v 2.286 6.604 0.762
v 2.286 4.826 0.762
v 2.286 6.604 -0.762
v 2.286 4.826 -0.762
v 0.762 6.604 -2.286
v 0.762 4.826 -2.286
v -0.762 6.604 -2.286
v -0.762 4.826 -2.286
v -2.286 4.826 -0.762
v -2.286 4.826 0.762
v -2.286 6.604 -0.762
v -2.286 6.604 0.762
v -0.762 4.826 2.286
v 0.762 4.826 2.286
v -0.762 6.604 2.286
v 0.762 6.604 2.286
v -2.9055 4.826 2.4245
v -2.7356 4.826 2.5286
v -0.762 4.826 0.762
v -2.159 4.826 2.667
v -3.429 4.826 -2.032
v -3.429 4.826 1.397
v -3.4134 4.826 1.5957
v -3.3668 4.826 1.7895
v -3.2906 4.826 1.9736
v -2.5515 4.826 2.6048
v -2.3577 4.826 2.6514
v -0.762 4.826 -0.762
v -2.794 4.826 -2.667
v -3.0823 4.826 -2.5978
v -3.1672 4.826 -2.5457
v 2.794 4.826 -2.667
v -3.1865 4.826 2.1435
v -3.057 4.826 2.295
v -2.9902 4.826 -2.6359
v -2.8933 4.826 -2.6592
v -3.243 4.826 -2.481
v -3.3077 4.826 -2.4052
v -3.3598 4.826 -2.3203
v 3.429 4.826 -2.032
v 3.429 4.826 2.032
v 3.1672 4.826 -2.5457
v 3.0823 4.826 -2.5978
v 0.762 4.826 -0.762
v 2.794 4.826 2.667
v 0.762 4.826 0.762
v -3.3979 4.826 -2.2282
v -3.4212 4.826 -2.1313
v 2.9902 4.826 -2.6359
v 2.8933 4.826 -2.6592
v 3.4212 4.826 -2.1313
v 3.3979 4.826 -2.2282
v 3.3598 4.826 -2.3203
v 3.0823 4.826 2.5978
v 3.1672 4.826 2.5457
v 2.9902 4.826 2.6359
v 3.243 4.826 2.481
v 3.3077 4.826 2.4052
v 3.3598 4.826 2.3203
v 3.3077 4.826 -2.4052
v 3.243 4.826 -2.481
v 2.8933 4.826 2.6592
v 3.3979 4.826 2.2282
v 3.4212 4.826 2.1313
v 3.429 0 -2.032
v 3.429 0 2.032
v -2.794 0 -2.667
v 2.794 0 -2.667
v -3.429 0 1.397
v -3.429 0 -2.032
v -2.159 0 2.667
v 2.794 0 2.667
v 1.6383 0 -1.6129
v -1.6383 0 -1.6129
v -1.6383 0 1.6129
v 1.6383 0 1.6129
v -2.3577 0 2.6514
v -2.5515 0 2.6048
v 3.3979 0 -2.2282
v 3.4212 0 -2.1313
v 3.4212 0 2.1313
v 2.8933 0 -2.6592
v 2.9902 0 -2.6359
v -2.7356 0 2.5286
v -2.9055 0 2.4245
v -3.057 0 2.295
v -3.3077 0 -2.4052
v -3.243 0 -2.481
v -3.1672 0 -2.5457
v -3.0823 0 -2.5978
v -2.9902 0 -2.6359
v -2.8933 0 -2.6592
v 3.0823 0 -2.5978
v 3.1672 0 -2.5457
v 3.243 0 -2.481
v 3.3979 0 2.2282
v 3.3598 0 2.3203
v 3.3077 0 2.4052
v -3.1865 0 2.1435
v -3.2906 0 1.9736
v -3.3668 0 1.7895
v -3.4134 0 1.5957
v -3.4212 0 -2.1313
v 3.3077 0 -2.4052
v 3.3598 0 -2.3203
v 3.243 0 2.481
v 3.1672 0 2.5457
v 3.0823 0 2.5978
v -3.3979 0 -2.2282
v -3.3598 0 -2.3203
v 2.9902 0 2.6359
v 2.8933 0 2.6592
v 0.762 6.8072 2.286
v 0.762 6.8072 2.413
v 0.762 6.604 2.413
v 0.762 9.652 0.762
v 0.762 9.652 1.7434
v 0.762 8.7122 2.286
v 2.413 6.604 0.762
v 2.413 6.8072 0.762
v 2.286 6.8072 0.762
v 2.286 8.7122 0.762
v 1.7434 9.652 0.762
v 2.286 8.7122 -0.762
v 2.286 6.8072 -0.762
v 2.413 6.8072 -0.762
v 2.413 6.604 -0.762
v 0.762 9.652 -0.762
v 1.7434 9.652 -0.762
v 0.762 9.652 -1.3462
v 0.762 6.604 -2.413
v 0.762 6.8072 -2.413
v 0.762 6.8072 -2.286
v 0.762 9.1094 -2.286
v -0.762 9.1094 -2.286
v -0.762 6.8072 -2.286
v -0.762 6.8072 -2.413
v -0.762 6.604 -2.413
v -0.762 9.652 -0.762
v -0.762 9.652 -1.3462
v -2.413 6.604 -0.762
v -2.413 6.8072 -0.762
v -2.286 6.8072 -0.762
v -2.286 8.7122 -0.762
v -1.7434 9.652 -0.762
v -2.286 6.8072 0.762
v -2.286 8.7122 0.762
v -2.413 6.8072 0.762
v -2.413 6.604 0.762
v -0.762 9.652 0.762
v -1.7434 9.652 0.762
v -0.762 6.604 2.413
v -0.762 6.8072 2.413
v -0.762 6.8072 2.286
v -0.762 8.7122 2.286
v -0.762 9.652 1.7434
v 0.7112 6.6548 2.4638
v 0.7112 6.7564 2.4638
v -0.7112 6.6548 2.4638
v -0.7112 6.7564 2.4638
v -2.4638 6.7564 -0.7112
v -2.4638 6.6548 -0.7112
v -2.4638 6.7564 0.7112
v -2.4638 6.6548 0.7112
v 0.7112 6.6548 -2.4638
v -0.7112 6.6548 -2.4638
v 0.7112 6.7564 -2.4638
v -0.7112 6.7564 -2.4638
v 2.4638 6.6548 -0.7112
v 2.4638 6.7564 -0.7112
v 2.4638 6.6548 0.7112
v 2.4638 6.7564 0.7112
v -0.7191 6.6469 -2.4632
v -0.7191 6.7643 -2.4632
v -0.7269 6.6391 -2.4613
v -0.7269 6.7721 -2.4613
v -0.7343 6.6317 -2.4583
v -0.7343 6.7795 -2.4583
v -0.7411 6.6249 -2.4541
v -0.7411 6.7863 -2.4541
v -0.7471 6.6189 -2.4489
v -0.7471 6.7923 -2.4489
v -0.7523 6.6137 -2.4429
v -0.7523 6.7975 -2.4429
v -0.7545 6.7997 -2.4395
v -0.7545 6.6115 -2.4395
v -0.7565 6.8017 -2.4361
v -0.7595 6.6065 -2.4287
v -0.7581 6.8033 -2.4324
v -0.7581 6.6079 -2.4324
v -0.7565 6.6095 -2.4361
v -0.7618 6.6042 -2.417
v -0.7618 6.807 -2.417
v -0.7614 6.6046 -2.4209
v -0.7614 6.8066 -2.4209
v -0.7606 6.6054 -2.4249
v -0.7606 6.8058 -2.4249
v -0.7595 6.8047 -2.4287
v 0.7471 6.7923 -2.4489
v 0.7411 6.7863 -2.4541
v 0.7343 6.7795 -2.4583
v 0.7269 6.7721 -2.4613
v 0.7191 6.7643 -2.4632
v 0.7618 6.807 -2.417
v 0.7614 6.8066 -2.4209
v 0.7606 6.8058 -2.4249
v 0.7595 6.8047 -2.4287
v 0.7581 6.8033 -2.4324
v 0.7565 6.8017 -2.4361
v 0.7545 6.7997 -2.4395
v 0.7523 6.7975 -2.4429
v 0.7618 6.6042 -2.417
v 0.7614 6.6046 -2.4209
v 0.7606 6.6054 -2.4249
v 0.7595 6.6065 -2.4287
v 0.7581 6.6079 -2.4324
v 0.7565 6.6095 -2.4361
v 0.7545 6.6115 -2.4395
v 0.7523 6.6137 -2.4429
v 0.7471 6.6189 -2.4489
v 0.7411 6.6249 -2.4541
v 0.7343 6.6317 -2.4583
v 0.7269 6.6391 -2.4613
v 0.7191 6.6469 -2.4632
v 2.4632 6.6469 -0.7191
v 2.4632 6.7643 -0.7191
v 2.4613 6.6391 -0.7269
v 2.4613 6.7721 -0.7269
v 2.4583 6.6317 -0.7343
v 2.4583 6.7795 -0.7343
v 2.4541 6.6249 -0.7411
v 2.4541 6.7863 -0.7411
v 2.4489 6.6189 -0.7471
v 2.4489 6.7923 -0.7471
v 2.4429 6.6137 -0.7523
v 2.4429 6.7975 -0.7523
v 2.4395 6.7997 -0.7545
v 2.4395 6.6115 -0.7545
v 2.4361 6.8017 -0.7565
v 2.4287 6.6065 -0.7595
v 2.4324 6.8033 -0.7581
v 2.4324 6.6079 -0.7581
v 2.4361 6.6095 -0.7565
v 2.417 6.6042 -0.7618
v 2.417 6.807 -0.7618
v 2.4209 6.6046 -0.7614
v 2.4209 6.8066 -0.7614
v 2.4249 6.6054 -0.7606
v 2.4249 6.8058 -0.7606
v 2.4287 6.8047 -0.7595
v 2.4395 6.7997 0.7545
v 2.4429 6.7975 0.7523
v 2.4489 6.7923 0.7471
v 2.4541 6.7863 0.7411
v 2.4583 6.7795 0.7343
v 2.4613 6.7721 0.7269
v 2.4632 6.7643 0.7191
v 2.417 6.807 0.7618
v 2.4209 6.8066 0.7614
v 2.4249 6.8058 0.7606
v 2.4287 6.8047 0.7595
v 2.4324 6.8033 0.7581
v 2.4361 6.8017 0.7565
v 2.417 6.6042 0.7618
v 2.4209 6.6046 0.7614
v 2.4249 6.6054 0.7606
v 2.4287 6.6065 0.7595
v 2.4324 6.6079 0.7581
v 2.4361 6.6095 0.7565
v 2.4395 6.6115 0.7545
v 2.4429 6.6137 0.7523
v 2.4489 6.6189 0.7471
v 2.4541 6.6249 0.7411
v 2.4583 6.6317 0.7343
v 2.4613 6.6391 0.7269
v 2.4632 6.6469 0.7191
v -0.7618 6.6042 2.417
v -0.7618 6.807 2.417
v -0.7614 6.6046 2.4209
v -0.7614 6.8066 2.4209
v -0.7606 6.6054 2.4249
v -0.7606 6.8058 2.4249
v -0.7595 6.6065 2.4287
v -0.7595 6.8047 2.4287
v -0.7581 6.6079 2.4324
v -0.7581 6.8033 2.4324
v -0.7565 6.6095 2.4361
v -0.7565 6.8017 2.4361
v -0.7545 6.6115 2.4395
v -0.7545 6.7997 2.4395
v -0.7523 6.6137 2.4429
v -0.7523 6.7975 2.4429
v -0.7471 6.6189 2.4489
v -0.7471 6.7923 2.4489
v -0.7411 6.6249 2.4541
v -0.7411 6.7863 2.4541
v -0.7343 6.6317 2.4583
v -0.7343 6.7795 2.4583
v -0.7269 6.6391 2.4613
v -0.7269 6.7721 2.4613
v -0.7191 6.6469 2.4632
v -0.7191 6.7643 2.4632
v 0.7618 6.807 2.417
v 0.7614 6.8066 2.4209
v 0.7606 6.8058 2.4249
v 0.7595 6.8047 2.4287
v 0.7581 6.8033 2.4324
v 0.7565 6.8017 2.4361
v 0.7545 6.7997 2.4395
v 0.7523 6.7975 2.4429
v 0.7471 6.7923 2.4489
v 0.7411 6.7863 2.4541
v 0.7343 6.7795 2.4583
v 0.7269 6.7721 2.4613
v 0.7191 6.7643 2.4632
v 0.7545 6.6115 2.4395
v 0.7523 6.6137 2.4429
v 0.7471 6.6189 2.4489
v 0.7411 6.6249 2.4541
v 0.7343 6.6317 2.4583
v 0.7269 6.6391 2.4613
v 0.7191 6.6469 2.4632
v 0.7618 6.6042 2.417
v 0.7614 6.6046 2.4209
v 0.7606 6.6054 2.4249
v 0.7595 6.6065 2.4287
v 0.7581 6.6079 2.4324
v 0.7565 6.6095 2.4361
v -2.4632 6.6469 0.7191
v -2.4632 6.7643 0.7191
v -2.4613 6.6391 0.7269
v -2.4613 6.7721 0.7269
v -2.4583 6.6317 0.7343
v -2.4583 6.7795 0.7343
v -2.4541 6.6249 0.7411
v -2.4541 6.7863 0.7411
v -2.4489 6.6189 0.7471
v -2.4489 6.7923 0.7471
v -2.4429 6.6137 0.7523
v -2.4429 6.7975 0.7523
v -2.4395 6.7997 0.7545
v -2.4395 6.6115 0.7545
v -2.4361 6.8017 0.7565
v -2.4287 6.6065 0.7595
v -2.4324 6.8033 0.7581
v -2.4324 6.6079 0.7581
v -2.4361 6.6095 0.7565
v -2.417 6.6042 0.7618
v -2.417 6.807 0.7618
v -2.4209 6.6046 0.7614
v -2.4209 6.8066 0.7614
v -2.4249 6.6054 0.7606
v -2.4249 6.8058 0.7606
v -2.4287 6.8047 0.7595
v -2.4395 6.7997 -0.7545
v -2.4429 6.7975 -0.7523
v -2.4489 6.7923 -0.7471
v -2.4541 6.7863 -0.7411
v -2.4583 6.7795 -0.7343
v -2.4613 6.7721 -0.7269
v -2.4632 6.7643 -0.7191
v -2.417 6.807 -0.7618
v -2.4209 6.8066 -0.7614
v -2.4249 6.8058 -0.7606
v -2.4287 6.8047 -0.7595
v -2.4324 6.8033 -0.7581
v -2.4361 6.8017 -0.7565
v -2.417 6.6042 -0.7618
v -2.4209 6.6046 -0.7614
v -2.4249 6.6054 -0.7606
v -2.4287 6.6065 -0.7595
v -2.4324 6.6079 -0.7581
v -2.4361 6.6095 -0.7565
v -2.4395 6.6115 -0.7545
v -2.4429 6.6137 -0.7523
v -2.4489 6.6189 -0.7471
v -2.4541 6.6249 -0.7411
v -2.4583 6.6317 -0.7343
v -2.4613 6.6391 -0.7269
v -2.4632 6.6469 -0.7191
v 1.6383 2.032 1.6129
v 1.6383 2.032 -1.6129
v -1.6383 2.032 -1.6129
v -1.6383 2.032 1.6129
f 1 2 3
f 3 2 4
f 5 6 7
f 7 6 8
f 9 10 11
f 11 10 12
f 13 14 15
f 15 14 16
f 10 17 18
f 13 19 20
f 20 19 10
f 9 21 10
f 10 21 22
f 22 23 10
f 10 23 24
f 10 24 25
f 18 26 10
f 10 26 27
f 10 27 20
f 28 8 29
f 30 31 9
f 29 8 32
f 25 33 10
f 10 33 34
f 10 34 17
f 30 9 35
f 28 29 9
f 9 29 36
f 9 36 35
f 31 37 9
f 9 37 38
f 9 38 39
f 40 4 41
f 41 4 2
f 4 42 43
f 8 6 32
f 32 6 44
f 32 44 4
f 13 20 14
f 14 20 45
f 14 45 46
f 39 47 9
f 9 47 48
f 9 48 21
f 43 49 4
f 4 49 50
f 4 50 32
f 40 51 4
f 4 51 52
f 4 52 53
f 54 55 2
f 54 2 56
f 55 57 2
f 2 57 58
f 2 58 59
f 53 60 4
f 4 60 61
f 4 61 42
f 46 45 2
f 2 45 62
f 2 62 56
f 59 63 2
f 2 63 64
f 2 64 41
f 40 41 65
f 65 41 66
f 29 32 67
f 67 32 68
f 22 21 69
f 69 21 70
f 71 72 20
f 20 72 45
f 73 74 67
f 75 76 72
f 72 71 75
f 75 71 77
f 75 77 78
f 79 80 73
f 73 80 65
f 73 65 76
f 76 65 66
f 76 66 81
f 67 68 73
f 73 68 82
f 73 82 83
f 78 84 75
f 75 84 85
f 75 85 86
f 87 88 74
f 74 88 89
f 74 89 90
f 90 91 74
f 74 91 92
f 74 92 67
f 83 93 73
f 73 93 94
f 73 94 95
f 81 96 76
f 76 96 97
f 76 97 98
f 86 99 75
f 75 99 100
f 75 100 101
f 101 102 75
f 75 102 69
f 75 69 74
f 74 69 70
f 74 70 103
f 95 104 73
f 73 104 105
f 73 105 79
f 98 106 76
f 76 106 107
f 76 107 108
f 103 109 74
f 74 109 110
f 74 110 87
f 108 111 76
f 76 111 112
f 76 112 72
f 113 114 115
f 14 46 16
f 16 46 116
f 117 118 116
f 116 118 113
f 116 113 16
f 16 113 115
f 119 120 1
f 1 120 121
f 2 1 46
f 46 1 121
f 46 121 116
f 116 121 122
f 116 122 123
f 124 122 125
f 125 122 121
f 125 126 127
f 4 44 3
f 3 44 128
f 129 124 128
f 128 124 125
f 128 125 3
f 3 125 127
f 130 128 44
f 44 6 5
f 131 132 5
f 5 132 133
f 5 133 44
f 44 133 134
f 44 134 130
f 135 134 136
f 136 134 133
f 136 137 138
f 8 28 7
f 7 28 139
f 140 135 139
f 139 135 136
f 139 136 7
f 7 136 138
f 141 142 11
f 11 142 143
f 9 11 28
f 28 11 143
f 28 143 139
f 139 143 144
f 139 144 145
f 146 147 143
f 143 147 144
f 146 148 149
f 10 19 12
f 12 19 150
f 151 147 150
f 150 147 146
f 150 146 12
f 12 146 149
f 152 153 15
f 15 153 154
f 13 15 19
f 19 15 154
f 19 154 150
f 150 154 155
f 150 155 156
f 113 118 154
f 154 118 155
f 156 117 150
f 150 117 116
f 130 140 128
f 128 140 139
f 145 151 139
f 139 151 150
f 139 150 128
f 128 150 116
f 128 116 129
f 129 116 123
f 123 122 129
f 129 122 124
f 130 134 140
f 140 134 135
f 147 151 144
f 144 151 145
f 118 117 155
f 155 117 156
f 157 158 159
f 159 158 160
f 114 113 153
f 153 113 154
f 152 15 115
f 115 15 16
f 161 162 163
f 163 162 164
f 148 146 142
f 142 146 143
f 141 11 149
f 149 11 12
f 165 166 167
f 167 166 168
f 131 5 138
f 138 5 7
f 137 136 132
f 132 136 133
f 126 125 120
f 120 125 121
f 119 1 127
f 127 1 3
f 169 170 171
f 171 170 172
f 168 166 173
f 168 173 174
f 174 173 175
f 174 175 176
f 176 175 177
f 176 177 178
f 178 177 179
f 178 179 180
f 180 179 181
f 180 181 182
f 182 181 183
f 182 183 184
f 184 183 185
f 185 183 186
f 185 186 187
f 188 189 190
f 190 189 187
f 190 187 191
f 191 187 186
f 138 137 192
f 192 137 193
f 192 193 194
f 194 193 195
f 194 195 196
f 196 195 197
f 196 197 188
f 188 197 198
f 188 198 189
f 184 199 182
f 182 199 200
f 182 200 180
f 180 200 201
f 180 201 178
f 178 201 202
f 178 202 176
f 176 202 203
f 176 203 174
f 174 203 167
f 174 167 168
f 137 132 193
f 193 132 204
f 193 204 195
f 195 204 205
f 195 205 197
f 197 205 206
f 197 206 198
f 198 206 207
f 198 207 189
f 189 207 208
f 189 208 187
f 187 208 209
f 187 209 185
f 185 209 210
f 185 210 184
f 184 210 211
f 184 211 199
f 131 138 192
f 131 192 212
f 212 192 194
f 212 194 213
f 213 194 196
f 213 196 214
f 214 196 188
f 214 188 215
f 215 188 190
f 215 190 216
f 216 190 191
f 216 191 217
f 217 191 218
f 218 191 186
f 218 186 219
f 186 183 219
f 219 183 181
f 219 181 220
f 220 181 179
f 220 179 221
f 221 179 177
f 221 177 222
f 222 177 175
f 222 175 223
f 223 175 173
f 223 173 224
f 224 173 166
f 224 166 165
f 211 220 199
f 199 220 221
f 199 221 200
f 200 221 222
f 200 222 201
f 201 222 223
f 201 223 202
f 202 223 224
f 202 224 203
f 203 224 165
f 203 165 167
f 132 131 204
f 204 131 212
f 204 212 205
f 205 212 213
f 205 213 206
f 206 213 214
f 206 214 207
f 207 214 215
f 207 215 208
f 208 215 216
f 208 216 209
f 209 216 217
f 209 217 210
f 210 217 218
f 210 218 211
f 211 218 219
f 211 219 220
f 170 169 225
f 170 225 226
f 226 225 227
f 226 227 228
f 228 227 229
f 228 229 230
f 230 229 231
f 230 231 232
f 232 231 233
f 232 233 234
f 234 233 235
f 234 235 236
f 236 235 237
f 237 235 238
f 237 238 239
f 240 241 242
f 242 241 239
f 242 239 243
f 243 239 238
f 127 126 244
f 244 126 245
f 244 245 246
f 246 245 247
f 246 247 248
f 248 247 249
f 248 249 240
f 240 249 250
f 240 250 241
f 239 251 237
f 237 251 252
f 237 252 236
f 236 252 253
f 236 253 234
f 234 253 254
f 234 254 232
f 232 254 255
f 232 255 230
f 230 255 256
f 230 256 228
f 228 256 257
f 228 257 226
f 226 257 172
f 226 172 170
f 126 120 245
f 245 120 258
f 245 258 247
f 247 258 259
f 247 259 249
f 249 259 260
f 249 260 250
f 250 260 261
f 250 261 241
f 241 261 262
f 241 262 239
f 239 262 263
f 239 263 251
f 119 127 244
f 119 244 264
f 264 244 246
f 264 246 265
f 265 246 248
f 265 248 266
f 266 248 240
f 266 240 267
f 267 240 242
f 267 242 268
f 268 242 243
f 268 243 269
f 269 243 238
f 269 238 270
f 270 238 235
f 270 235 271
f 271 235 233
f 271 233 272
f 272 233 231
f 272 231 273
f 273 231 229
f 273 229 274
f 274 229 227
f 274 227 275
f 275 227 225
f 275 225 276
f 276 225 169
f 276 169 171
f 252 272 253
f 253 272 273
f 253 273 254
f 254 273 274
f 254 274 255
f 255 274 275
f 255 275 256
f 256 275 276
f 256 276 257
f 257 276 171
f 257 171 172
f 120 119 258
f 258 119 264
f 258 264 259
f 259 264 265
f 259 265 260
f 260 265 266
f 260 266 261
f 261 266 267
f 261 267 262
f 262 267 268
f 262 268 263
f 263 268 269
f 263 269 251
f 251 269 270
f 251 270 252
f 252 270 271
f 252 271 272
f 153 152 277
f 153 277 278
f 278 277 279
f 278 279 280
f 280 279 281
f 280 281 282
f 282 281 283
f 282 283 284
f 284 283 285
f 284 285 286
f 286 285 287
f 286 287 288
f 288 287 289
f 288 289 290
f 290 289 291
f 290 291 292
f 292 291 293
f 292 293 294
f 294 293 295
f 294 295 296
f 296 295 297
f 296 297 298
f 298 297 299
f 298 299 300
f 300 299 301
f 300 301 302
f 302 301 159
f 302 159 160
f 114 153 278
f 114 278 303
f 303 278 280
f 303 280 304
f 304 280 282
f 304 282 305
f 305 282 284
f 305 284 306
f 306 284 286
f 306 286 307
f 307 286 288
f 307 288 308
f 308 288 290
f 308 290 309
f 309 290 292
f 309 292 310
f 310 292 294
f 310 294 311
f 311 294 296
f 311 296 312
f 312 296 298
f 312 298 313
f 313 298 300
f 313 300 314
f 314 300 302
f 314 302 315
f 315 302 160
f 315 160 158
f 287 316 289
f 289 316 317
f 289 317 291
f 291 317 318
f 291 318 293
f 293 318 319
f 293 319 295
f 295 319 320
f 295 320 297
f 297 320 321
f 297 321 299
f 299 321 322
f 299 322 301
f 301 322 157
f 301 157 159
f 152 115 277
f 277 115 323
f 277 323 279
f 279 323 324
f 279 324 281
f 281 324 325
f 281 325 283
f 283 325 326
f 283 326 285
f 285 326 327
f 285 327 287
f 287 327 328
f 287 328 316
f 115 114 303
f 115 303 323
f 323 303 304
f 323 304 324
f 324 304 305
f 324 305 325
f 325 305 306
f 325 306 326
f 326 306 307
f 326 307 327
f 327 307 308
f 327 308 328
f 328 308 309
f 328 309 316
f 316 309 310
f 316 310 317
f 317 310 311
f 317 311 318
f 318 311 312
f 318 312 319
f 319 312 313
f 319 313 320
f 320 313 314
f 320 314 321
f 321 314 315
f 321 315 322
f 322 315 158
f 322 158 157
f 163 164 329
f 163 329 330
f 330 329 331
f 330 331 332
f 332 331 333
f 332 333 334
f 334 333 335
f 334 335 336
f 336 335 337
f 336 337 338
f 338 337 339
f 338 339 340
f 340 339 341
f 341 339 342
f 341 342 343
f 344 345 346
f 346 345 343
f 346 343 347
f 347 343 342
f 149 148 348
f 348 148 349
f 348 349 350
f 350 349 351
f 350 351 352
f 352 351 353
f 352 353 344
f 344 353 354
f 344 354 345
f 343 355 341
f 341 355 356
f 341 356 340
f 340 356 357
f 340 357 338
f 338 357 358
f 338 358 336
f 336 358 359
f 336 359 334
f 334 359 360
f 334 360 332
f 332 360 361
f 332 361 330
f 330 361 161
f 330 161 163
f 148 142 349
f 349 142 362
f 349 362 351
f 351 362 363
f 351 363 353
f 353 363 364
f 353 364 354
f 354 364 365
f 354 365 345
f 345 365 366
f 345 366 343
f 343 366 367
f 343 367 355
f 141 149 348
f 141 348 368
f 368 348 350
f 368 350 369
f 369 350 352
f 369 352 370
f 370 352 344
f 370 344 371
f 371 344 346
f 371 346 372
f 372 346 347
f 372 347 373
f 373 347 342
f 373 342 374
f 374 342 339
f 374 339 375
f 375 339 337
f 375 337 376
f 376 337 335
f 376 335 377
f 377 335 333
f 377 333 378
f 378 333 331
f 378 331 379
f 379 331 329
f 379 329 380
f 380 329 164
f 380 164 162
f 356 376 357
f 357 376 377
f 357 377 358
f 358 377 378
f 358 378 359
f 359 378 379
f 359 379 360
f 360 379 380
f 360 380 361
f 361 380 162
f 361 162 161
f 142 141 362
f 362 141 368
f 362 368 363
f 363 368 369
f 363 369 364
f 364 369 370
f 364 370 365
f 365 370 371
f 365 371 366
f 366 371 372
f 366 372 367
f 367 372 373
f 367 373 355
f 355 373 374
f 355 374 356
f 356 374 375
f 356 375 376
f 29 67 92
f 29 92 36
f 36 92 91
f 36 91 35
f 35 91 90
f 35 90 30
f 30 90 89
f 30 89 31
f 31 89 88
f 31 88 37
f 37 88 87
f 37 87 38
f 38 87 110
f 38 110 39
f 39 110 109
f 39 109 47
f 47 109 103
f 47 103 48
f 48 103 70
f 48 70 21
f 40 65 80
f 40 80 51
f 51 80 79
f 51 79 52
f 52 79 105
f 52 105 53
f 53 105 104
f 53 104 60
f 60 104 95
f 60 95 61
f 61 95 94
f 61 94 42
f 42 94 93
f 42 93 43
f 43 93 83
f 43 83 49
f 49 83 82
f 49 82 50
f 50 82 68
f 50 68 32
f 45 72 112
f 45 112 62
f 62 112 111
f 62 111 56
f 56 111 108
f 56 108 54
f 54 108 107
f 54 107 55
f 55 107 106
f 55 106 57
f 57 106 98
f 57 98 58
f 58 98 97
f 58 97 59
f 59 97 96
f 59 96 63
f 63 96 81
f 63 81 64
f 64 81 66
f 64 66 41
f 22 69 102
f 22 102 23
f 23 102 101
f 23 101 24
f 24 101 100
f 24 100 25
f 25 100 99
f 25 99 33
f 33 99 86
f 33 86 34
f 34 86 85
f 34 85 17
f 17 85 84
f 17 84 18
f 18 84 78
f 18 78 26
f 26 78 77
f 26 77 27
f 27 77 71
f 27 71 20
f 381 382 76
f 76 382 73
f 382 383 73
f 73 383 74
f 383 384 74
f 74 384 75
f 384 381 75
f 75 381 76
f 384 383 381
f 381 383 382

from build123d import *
from OCP.BRepFilletAPI import BRepFilletAPI_MakeChamfer

# Parameters (mm, degrees)
SKETCH1_W           = 6.858
SKETCH1_H           = 5.334
BOSS_EXTRUDE1_DEPTH = 4.826
SKETCH2_W           = 1.524
SKETCH2_H           = 1.524
BOSS_EXTRUDE2_DEPTH = 4.826
CHAMFER1_SIZE       = 0.9398
CHAMFER1_SIZE2      = 0.542593783
BOSS_EXTRUDE3_START = -3.048
SKETCH3_W           = 0.720393783
SKETCH3_H           = 1.524
SKETCH3_W_2         = 0.981406217
SKETCH3_W_3         = 1.524
SKETCH3_H_2         = 1.1176
SKETCH3_H_3         = 0.5842
SKETCH3_H_4         = 0.981406217
SKETCH3_H_5         = 0.720393783
BOSS_EXTRUDE3_DEPTH = 0.2032
FILLET2_R           = 0.0508
FILLET3_R           = 0.635
FILLET6_R           = 1.27
SKETCH4_W           = 3.2766
SKETCH4_H           = 3.2258
CUT_EXTRUDE1_DEPTH  = 2.032


with BuildPart() as part:
    # Sketch1 → Boss-Extrude1 (new body)
    with BuildSketch(Plane(origin=(0, 0, 0), x_dir=(1, 0, 0), z_dir=(0, 1, 0))):
        Rectangle(SKETCH1_W, SKETCH1_H)
    extrude(amount=BOSS_EXTRUDE1_DEPTH)

    # Sketch2 → Boss-Extrude2 (add)
    with BuildSketch(Plane(origin=(0, 4.826, 0), x_dir=(1, 0, 0), z_dir=(0, 1, 0))):
        Rectangle(SKETCH2_W, SKETCH2_H)
        with Locations((1.524, 0)):
            Rectangle(SKETCH2_W, SKETCH2_H)
        with Locations((0, 1.524)):
            Rectangle(SKETCH2_W, SKETCH2_H)
        with Locations((-1.524, 0)):
            Rectangle(SKETCH2_W, SKETCH2_H)
        with Locations((0, -1.524)):
            Rectangle(SKETCH2_W, SKETCH2_H)
    extrude(amount=BOSS_EXTRUDE2_DEPTH)

    # Chamfer1: one chamfer whose edges measure the first distance from different faces: ONE call of the kernel's chamfer builder (chamfer() names one face for all edges)
    chamfer1_edges_1 = [part.edges().sort_by_distance(p)[0] for p in [
        (2.286, 9.652, 0),
    ]]
    chamfer1_side_1 = [part.faces().sort_by_distance(p)[0] for p in [
        (2.286, 7.239, 0),
    ]]
    chamfer1_edges_2 = [part.edges().sort_by_distance(p)[0] for p in [
        (0, 9.652, -2.286),
    ]]
    chamfer1_side_2 = [part.faces().sort_by_distance(p)[0] for p in [
        (0, 9.652, 0),
    ]]
    chamfer1_edges_3 = [part.edges().sort_by_distance(p)[0] for p in [
        (-2.286, 9.652, 0),
    ]]
    chamfer1_side_3 = [part.faces().sort_by_distance(p)[0] for p in [
        (-2.286, 7.239, 0),
    ]]
    chamfer1_edges_4 = [part.edges().sort_by_distance(p)[0] for p in [
        (0, 9.652, 2.286),
    ]]
    chamfer1_side_4 = [part.faces().sort_by_distance(p)[0] for p in [
        (0, 7.239, 2.286),
    ]]
    chamfer1 = BRepFilletAPI_MakeChamfer(part.part.solid().wrapped)
    for e in chamfer1_edges_1:
        chamfer1.Add(CHAMFER1_SIZE, CHAMFER1_SIZE2, e.wrapped, chamfer1_side_1[0].wrapped)  # the first distance lies on this face
    for e in chamfer1_edges_2:
        chamfer1.Add(CHAMFER1_SIZE, CHAMFER1_SIZE2, e.wrapped, chamfer1_side_2[0].wrapped)  # the first distance lies on this face
    for e in chamfer1_edges_3:
        chamfer1.Add(CHAMFER1_SIZE, CHAMFER1_SIZE2, e.wrapped, chamfer1_side_3[0].wrapped)  # the first distance lies on this face
    for e in chamfer1_edges_4:
        chamfer1.Add(CHAMFER1_SIZE, CHAMFER1_SIZE2, e.wrapped, chamfer1_side_4[0].wrapped)  # the first distance lies on this face
    add(Compound.cast(chamfer1.Shape()), mode=Mode.REPLACE)

    # Sketch3 → Boss-Extrude3 (add)
    with BuildSketch(Plane(origin=(0, 9.652, 0), x_dir=(1, 0, 0), z_dir=(0, 1, 0)).offset(BOSS_EXTRUDE3_START)):
        with Locations((2.103603109, 0)):
            Rectangle(SKETCH3_W, SKETCH3_H)
        with Locations((1.252703108, 0)):
            Rectangle(SKETCH3_W_2, SKETCH3_H)
        with Locations((0, 1.905)):
            Rectangle(SKETCH3_W_3, SKETCH3_H_2)
        with Locations((0, 1.0541)):
            Rectangle(SKETCH3_W_3, SKETCH3_H_3)
        Rectangle(SKETCH3_W_3, SKETCH3_H)
        with Locations((-1.252703108, 0)):
            Rectangle(SKETCH3_W_2, SKETCH3_H)
        with Locations((-2.103603109, 0)):
            Rectangle(SKETCH3_W, SKETCH3_H)
        with Locations((0, -1.252703108)):
            Rectangle(SKETCH3_W_3, SKETCH3_H_4)
        with Locations((0, -2.103603109)):
            Rectangle(SKETCH3_W_3, SKETCH3_H_5)
    extrude(amount=BOSS_EXTRUDE3_DEPTH)

    # Fillet2
    fillet2_edges = [part.edges().sort_by_distance(p)[0] for p in [
        (-2.4638, 6.8072, 0),
        (0, 6.8072, 2.4638),
        (2.4638, 6.604, 0),
        (2.4638, 6.8072, 0),
        (2.4638, 6.7056, 0.762),
        (2.4638, 6.7056, -0.762),
        (0, 6.8072, -2.4638),
        (0.762, 6.7056, -2.4638),
        (-0.762, 6.7056, -2.4638),
        (-2.4638, 6.604, 0),
        (-2.4638, 6.7056, -0.762),
        (0, 6.604, 2.4638),
        (-0.762, 6.7056, 2.4638),
        (0, 6.604, -2.4638),
        (-2.4638, 6.7056, 0.762),
        (0.762, 6.7056, 2.4638),
    ]]
    fillet(fillet2_edges, radius=FILLET2_R)

    # Fillet3
    fillet3_edges = [part.edges().sort_by_distance(p)[0] for p in [
        (3.429, 2.413, 2.667),
        (-3.429, 2.413, -2.667),
        (3.429, 2.413, -2.667),
    ]]
    fillet(fillet3_edges, radius=FILLET3_R)

    # Fillet6
    fillet6_edges = [part.edges().sort_by_distance(p)[0] for p in [
        (-3.429, 2.413, 2.667),
    ]]
    fillet(fillet6_edges, radius=FILLET6_R)

    # Sketch4 → Cut-Extrude1 (cut)
    with BuildSketch(Plane.XZ):
        Rectangle(SKETCH4_W, SKETCH4_H)
    extrude(amount=-CUT_EXTRUDE1_DEPTH, mode=Mode.SUBTRACT)


solid = part.part
